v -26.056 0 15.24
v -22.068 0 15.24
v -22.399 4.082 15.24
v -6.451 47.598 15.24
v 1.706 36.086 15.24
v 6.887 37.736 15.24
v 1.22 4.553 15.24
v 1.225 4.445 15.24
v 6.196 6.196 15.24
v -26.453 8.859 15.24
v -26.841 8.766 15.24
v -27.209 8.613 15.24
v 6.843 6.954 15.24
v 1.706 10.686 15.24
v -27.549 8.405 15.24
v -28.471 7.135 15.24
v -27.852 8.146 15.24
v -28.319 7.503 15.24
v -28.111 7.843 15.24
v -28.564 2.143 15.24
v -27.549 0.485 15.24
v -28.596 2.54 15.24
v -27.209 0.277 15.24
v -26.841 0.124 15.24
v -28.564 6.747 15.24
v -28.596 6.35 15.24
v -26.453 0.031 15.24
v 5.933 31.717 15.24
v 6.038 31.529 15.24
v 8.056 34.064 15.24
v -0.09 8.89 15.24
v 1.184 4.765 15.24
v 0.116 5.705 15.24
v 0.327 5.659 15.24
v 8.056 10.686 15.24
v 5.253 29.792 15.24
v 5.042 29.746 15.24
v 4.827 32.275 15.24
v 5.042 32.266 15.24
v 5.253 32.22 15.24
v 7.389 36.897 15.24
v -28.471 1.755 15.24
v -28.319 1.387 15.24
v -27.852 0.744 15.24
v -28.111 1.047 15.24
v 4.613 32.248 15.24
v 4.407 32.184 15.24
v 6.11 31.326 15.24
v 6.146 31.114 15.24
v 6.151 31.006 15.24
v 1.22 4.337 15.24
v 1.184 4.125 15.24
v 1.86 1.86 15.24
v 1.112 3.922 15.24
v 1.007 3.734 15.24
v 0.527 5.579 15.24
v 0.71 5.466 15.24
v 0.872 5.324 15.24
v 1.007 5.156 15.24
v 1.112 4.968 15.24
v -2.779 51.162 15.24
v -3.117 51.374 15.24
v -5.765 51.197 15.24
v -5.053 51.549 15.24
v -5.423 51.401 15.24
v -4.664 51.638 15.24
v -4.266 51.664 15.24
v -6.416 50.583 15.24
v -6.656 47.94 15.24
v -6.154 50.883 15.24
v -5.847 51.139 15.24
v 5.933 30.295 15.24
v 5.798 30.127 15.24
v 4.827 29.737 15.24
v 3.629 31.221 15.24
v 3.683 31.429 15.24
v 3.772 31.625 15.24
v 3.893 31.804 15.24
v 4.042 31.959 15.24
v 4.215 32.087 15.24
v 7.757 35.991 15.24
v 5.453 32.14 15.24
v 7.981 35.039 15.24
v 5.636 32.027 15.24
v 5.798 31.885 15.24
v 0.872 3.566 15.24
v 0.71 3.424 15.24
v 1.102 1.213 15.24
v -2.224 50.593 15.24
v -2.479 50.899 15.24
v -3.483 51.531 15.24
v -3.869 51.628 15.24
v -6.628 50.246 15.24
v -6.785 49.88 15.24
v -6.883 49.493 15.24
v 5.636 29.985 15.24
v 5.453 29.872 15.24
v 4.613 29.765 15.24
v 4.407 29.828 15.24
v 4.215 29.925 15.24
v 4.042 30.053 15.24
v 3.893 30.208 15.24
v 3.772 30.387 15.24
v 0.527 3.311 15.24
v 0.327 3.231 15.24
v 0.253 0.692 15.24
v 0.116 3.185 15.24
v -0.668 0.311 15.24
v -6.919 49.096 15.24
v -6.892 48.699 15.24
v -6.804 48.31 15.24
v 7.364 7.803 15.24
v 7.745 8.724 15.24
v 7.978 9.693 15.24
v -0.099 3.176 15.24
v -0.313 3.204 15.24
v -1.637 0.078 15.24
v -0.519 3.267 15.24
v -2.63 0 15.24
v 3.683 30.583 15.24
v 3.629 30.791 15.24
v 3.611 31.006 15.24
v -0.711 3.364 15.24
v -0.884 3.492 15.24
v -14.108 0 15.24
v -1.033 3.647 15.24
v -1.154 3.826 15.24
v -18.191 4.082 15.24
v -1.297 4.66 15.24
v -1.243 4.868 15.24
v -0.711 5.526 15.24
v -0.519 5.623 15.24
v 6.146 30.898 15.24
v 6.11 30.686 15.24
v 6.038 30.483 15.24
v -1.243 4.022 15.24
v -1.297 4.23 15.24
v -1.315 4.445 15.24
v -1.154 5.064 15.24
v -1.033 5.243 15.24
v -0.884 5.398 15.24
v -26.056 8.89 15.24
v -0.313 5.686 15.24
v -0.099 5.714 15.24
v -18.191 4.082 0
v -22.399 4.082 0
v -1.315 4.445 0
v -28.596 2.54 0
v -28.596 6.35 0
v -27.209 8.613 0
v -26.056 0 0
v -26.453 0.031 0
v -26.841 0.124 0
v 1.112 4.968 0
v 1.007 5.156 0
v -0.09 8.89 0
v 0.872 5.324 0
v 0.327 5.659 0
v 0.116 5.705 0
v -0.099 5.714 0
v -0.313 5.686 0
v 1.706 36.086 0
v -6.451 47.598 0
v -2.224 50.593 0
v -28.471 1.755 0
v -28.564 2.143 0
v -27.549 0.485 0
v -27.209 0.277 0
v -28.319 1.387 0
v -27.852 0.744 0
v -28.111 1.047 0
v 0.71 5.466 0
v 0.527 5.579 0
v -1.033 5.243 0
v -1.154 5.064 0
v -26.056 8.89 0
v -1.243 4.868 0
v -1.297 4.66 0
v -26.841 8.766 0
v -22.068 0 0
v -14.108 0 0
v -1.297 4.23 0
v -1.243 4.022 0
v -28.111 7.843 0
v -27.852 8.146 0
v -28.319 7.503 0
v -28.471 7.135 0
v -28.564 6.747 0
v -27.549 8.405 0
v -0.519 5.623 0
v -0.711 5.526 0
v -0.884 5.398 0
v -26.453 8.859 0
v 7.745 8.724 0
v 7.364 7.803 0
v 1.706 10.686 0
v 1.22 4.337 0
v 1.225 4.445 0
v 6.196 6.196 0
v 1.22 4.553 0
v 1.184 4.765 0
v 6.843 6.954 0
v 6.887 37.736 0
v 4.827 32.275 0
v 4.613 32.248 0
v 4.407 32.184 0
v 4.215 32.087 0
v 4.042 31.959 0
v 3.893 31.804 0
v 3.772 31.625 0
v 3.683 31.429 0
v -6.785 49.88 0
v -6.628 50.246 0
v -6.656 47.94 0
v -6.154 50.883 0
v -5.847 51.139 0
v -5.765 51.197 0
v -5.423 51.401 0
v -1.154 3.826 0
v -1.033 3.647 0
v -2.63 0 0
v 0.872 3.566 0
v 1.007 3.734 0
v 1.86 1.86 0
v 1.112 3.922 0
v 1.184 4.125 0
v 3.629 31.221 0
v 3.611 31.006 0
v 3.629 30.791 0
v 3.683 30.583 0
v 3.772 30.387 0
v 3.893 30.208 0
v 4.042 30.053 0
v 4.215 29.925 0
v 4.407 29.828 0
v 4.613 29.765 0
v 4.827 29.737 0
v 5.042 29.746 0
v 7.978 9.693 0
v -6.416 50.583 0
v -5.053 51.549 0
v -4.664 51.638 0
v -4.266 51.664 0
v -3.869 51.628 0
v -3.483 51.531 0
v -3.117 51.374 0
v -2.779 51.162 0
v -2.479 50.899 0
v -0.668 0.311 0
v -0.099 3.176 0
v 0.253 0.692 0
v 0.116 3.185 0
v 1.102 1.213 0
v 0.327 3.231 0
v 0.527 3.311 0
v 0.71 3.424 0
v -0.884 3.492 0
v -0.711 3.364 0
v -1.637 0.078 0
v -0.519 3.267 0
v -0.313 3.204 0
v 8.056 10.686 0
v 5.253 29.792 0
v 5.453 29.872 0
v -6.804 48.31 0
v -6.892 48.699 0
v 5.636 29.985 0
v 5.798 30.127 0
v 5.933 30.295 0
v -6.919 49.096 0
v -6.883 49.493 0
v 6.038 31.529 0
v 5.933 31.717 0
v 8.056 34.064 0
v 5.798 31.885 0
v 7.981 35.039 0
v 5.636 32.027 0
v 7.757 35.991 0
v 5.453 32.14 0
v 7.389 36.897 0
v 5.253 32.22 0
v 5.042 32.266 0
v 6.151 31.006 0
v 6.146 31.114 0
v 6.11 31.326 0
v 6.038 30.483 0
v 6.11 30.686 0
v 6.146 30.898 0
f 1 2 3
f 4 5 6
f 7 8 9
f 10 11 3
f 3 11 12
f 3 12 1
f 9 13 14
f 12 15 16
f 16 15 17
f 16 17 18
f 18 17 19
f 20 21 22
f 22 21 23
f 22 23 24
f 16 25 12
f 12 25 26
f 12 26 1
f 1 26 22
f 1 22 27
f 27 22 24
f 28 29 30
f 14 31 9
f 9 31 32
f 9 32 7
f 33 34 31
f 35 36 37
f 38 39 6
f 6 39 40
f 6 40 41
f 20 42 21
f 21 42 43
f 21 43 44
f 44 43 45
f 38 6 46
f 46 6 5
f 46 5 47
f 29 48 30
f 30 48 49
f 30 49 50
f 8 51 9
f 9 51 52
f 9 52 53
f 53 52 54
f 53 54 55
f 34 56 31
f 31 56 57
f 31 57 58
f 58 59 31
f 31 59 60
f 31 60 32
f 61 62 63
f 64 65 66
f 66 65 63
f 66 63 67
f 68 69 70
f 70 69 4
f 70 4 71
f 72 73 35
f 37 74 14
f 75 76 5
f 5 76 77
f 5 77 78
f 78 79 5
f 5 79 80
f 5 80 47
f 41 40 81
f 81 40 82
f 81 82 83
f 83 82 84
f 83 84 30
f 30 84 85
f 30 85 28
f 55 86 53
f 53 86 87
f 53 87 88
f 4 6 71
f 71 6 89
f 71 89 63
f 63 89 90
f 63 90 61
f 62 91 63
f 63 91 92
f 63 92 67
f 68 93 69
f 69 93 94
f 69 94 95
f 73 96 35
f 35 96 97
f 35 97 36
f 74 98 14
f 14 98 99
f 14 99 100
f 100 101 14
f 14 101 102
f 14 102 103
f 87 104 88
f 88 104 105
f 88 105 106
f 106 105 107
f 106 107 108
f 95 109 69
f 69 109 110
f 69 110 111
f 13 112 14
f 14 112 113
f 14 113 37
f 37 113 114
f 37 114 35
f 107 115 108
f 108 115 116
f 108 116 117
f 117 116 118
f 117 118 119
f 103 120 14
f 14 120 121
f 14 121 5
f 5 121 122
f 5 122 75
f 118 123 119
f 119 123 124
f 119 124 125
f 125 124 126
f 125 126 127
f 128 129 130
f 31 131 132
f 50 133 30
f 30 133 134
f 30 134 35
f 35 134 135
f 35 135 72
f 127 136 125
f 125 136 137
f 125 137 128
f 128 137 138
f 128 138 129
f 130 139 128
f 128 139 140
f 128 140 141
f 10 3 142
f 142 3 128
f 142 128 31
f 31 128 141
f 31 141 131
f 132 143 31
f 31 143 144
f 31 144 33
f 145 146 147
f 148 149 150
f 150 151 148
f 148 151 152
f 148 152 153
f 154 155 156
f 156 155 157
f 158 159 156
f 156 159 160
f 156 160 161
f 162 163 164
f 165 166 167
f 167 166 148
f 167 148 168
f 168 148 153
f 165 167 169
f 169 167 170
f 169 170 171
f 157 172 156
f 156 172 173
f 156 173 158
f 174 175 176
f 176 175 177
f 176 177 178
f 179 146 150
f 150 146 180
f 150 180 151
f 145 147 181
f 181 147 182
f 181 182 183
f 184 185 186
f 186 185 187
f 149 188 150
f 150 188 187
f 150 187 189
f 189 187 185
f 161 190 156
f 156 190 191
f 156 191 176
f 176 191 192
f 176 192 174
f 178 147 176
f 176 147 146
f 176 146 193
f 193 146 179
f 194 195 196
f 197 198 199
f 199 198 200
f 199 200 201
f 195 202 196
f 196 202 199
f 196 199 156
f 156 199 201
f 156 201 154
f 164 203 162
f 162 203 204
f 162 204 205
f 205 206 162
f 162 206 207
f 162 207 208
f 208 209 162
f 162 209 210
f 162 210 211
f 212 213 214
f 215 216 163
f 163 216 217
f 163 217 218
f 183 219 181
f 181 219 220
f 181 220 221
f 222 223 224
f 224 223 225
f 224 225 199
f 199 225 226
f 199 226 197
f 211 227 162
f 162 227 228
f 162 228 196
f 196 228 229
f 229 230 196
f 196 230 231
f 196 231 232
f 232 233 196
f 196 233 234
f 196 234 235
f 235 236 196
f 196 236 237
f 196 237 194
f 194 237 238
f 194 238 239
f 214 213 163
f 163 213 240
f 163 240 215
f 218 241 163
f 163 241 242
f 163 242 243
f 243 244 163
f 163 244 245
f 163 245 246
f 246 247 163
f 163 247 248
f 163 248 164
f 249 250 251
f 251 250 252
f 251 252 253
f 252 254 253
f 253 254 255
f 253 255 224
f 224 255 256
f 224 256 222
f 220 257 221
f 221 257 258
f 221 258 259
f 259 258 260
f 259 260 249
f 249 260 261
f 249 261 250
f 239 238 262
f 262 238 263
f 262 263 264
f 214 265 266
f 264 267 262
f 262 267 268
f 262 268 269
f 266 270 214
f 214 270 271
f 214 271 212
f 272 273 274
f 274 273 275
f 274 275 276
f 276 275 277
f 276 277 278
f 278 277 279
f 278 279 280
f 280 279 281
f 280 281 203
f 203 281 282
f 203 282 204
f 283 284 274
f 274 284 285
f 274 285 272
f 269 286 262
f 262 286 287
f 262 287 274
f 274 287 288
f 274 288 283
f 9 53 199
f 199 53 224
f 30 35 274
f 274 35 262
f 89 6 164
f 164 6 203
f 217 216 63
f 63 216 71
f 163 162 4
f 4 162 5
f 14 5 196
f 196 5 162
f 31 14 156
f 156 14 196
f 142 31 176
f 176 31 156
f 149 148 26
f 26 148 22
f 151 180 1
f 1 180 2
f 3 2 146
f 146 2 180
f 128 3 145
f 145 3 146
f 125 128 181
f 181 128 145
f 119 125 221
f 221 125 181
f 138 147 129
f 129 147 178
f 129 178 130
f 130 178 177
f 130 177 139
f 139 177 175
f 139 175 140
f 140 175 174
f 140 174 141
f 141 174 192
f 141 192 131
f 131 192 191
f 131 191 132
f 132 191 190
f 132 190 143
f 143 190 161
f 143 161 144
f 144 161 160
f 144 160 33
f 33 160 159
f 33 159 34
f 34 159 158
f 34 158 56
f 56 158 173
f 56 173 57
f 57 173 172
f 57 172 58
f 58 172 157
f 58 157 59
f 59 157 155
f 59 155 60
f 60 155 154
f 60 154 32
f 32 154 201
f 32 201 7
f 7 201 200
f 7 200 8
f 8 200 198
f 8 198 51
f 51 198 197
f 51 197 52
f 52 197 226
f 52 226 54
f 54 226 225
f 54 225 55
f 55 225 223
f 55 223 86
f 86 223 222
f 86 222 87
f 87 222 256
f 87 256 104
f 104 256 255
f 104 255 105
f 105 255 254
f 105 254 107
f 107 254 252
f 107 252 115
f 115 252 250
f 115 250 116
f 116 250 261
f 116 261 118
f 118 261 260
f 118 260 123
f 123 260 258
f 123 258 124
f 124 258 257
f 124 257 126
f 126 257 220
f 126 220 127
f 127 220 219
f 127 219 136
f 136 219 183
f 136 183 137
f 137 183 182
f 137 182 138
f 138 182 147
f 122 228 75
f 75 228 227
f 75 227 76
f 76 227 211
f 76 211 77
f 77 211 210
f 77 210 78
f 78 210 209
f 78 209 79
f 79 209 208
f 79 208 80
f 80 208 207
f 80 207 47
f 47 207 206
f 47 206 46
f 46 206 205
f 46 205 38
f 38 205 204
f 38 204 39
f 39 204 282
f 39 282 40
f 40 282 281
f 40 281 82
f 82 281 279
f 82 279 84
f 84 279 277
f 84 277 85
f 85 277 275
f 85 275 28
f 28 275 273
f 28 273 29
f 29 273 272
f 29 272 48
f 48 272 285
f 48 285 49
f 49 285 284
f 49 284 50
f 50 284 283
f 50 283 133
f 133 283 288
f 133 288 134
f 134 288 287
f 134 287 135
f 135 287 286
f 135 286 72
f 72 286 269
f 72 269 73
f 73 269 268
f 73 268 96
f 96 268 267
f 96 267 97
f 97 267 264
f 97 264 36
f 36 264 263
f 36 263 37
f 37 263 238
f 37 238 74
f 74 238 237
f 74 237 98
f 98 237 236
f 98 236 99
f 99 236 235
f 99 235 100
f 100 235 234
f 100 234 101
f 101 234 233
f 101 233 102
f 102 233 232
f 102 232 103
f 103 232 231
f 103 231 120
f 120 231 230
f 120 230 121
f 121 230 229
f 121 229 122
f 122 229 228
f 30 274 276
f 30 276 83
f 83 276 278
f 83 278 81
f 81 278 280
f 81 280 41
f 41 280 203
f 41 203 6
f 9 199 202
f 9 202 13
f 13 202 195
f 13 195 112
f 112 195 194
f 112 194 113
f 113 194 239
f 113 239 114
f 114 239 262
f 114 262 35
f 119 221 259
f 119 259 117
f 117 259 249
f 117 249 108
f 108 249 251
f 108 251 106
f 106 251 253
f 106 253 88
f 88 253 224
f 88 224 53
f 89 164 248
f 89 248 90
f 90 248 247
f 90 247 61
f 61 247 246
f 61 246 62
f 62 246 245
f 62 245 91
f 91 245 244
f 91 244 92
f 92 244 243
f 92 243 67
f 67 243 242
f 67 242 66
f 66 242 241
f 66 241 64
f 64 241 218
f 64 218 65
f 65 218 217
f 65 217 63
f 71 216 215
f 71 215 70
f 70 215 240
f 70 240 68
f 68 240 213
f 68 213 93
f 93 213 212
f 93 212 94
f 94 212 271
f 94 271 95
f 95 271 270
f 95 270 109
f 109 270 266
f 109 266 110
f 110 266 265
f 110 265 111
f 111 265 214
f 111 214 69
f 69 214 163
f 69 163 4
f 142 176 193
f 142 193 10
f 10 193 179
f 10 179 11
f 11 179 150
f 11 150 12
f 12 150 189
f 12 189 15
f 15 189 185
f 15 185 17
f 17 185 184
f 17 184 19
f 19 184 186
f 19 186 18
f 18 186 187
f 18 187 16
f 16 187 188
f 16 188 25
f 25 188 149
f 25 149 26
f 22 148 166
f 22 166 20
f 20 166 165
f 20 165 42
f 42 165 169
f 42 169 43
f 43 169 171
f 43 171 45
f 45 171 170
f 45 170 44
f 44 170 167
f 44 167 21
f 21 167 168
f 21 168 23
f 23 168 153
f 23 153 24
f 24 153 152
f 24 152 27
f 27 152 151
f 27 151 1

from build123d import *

# Parameters (mm, degrees)
SKETCH1_R           = 1.27
BOSS_EXTRUDE1_DEPTH = 15.24
BIG_FILL_R          = 6.35
FILLET1_R           = 2.54


with BuildPart() as part:
    # Sketch1 → Boss-Extrude1 (new body)
    with BuildSketch(Plane.XY):
        Polygon((0, 0), (-14.108343909, 0), (-18.190770029, 4.082426119), (-22.399065773, 4.082426119), (-22.068202315, 0), (-28.595630403, 0), (-28.595630403, 8.89), (-0.090256121, 8.89), (1.705795103, 10.686051224), (1.705795103, 36.086051224), (-7.919873827, 49.670016208), (-3.692519109, 52.665541963), (8.055795103, 36.086051224), (8.055795103, 8.055795103), align=None)
        with Locations(Location((-0.045128061, 4.445, 0), (0, 0, 180))):
            Circle(SKETCH1_R, mode=Mode.SUBTRACT)
        with Locations(Location((4.880795103, 31.006051224, 0), (0, 0, 180))):
            Circle(SKETCH1_R, mode=Mode.SUBTRACT)
    extrude(amount=BOSS_EXTRUDE1_DEPTH)

    # big_fill
    big_fill_edges = [part.edges().sort_by_distance(p)[0] for p in [
        (0, 0, 7.62),
        (8.055795103, 36.086051224, 7.62),
        (8.055795103, 8.055795103, 7.62),
    ]]
    fillet(big_fill_edges, radius=BIG_FILL_R)

    # Fillet1
    fillet1_edges = [part.edges().sort_by_distance(p)[0] for p in [
        (-28.595630403, 0, 7.62),
        (-28.595630403, 8.89, 7.62),
        (-7.919873827, 49.670016208, 7.62),
        (-3.692519109, 52.665541963, 7.62),
    ]]
    fillet(fillet1_edges, radius=FILLET1_R)


solid = part.part
